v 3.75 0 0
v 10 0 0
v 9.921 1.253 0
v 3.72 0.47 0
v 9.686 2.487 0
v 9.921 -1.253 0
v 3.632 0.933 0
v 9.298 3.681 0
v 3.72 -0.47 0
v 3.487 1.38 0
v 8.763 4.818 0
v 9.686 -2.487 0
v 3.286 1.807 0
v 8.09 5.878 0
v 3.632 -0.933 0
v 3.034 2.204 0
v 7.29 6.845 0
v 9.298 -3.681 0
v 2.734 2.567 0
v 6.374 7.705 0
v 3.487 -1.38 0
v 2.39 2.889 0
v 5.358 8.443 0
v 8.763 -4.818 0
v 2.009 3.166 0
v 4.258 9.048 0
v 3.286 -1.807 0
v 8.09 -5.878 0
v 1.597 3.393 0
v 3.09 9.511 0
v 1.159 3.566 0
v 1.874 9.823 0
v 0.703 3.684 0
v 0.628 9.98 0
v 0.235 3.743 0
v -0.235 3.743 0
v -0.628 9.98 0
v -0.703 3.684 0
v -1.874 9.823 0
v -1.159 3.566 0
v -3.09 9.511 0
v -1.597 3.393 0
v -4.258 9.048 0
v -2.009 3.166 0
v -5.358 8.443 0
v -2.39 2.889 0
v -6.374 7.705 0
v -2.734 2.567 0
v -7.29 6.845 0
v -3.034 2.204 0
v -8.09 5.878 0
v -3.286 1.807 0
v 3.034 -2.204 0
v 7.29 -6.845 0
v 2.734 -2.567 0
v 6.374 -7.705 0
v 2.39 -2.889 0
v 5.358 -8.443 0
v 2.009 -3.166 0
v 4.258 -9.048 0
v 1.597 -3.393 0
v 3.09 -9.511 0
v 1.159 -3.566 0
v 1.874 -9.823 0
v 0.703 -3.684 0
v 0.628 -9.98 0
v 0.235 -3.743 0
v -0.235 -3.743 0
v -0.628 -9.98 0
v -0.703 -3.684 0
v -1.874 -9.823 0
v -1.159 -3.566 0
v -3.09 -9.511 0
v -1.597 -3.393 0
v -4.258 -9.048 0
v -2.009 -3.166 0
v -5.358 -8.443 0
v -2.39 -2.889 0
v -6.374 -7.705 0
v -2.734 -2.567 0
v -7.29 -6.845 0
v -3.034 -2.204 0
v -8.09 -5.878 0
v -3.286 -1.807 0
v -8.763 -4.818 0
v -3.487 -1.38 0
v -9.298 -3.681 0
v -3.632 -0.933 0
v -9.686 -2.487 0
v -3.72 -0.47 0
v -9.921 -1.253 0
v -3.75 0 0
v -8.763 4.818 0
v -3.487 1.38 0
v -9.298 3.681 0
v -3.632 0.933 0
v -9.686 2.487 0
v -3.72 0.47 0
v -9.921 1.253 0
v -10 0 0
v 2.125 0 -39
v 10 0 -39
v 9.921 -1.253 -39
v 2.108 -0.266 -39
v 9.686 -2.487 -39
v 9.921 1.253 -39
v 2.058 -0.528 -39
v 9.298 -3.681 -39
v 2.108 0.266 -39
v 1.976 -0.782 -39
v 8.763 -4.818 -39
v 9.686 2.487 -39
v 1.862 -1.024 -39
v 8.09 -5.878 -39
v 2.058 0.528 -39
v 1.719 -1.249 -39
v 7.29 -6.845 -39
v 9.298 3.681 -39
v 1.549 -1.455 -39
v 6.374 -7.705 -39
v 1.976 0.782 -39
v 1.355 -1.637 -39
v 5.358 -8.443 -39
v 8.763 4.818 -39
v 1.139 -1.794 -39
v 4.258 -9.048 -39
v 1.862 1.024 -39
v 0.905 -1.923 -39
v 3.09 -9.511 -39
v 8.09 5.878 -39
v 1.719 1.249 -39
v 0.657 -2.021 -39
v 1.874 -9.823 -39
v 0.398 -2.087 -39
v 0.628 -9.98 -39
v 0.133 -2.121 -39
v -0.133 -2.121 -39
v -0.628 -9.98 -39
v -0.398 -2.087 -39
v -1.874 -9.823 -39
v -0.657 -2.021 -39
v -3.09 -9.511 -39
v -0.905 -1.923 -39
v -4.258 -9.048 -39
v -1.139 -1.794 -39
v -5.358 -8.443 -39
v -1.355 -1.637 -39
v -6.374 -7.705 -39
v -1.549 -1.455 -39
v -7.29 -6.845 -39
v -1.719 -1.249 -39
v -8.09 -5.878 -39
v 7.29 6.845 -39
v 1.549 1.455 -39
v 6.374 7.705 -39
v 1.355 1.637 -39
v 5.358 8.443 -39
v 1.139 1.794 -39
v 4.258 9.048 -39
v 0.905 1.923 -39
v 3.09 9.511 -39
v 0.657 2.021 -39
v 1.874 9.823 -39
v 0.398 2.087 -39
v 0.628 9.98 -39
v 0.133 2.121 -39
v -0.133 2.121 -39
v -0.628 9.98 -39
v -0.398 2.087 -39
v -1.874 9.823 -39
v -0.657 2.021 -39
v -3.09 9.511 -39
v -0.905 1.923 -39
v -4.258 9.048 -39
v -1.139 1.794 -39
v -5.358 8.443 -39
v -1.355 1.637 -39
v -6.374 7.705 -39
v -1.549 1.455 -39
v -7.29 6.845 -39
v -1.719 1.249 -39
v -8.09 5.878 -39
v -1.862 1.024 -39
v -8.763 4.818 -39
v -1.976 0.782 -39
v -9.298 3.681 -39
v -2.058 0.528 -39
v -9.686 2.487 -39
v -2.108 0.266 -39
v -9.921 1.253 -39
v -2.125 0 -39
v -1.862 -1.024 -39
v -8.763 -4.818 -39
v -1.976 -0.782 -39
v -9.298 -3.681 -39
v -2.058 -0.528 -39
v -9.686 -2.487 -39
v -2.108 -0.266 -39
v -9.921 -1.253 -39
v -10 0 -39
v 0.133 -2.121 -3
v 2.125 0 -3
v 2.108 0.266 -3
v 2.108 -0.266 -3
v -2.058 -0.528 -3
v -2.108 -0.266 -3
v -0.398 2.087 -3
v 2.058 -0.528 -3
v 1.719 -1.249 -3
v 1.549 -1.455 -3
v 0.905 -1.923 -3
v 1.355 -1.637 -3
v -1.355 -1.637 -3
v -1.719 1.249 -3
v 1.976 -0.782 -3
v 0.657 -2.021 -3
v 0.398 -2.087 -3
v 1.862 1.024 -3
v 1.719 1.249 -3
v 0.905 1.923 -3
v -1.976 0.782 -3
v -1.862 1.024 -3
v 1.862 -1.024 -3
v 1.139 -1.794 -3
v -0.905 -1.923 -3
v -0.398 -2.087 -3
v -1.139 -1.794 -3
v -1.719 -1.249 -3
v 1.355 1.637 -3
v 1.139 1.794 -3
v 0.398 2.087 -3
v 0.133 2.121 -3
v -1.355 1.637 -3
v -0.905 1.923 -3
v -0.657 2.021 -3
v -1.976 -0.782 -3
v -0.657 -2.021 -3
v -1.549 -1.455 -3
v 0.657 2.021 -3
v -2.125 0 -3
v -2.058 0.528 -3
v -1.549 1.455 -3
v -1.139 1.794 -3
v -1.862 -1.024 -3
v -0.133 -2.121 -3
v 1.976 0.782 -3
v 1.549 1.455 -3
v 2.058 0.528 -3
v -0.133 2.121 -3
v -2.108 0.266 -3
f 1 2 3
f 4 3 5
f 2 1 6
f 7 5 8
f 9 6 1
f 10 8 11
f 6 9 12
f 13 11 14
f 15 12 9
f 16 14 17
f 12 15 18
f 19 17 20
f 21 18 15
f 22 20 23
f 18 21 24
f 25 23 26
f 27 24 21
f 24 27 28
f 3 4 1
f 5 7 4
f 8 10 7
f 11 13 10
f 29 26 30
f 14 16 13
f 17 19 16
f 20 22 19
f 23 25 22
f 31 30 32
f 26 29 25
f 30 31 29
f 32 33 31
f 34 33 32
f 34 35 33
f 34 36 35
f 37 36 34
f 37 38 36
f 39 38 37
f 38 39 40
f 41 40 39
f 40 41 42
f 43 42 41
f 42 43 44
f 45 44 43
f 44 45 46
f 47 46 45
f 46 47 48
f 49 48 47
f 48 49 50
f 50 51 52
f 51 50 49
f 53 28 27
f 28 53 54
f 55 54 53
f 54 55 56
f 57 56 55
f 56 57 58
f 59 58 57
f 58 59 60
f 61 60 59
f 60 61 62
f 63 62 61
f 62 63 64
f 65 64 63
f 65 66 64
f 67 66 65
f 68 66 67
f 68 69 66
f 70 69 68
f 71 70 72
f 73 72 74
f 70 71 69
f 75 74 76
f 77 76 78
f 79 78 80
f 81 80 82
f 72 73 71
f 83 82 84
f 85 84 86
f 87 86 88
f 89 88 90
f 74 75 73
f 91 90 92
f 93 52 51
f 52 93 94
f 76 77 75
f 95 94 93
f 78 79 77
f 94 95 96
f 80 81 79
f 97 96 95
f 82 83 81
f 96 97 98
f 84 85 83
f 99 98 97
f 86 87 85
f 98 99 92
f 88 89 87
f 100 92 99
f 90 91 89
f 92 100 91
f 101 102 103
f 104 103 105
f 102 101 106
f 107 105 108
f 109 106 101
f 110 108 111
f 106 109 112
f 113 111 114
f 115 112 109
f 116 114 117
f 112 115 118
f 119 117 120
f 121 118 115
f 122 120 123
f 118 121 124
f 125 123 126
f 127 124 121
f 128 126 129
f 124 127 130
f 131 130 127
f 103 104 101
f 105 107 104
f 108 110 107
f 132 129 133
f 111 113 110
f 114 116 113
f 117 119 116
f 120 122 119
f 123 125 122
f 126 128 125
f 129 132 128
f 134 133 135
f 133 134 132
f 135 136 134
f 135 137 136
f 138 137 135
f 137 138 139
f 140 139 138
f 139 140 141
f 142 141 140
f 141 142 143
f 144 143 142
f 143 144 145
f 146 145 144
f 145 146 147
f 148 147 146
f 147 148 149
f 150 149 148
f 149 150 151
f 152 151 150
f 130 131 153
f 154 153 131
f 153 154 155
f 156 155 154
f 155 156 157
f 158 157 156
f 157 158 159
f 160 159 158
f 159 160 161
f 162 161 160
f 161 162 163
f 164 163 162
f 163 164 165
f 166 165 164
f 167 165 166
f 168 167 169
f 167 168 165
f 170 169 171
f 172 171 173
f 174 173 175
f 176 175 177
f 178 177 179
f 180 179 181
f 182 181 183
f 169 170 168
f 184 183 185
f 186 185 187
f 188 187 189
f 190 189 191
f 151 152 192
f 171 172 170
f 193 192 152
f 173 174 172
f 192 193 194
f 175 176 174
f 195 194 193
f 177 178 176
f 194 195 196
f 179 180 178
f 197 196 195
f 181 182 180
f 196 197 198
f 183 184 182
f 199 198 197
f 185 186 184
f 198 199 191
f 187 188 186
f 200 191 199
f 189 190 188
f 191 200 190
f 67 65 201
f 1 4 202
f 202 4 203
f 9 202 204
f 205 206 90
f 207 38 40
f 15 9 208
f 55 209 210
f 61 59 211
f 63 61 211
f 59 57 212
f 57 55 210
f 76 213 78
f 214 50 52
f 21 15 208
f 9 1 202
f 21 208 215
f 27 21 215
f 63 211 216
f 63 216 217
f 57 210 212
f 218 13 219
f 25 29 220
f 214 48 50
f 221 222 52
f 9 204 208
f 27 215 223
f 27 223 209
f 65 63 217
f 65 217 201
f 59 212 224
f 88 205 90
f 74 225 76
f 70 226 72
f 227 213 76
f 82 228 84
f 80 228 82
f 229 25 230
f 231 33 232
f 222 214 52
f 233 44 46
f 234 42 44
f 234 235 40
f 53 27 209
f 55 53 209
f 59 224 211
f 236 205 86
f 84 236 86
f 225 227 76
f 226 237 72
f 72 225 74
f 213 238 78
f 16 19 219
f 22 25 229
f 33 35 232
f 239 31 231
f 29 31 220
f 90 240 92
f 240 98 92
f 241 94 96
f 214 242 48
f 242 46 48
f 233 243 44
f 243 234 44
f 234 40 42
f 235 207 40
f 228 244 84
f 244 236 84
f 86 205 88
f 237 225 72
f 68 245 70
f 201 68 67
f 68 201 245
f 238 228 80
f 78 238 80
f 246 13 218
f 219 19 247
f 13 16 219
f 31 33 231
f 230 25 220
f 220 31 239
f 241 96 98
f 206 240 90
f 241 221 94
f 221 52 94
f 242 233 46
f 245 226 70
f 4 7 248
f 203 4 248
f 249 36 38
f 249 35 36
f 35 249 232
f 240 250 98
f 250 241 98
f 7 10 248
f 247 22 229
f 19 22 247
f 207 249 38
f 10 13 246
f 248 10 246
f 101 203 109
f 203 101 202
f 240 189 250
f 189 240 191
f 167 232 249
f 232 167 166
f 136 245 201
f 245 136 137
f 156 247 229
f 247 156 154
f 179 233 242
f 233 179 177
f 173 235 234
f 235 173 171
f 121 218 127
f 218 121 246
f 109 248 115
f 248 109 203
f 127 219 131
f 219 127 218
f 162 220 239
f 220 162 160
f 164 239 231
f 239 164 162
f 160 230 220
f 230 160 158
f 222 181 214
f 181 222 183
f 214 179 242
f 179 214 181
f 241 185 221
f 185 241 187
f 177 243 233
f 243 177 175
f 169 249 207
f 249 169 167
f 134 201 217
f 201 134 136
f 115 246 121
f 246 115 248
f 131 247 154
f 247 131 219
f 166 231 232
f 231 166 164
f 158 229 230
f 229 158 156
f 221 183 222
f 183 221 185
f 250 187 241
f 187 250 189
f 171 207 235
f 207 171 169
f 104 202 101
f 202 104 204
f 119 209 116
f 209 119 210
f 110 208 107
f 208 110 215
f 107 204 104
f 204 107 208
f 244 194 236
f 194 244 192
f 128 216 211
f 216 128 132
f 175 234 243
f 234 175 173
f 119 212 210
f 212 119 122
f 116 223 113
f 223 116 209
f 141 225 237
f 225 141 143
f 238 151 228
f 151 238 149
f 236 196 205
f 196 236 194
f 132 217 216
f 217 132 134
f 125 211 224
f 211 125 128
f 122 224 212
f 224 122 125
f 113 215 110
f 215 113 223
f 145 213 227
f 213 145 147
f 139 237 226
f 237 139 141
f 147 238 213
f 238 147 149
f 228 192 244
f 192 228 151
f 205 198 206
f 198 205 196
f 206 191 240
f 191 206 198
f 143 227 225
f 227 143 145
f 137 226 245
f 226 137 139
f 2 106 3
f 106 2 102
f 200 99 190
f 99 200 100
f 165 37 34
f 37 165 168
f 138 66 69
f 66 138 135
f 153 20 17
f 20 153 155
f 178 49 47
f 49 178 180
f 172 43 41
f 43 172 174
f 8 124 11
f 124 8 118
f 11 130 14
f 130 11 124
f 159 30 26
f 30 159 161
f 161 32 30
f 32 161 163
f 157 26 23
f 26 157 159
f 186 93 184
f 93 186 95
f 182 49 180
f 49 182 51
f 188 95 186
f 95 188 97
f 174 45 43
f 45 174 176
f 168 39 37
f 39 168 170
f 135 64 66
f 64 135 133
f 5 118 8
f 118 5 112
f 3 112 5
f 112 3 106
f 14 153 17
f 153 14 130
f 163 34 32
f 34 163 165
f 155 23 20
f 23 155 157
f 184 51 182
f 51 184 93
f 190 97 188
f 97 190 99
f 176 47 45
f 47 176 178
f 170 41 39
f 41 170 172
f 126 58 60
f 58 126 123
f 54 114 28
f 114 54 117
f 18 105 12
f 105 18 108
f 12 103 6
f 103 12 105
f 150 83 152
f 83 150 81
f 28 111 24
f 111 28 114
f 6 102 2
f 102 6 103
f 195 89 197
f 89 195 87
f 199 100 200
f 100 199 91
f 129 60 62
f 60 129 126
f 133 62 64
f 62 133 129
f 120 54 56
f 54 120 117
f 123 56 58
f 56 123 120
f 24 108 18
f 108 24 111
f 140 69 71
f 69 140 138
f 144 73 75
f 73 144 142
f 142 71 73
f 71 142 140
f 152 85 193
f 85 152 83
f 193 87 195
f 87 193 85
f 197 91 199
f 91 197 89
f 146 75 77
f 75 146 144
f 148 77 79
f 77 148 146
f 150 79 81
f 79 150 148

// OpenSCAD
$fn = 50;


difference() {
	union() {
		translate(v = [0, 0, -39.0000000000]) {
			cylinder(h = 39, r = 10.0000000000);
		}
		cylinder(h = 0, r = 16.0000000000);
	}
	union() {
		translate(v = [0, 0, 0]) {
			rotate(a = [0, 0, 0]) {
				difference() {
					union() {
						#translate(v = [0, 0, -39.0000000000]) {
							cylinder(h = 39, r = 2.0000000000);
						}
						#translate(v = [0, 0, -3]) {
							cylinder(h = 3, r1 = 2.1250000000, r2 = 3.7500000000);
						}
						#translate(v = [0, 0, -39.0000000000]) {
							cylinder(h = 39, r = 2.1250000000);
						}
						#translate(v = [0, 0, -39.0000000000]) {
							cylinder(h = 39, r = 2.0000000000);
						}
					}
					union();
				}
			}
		}
	}
}
